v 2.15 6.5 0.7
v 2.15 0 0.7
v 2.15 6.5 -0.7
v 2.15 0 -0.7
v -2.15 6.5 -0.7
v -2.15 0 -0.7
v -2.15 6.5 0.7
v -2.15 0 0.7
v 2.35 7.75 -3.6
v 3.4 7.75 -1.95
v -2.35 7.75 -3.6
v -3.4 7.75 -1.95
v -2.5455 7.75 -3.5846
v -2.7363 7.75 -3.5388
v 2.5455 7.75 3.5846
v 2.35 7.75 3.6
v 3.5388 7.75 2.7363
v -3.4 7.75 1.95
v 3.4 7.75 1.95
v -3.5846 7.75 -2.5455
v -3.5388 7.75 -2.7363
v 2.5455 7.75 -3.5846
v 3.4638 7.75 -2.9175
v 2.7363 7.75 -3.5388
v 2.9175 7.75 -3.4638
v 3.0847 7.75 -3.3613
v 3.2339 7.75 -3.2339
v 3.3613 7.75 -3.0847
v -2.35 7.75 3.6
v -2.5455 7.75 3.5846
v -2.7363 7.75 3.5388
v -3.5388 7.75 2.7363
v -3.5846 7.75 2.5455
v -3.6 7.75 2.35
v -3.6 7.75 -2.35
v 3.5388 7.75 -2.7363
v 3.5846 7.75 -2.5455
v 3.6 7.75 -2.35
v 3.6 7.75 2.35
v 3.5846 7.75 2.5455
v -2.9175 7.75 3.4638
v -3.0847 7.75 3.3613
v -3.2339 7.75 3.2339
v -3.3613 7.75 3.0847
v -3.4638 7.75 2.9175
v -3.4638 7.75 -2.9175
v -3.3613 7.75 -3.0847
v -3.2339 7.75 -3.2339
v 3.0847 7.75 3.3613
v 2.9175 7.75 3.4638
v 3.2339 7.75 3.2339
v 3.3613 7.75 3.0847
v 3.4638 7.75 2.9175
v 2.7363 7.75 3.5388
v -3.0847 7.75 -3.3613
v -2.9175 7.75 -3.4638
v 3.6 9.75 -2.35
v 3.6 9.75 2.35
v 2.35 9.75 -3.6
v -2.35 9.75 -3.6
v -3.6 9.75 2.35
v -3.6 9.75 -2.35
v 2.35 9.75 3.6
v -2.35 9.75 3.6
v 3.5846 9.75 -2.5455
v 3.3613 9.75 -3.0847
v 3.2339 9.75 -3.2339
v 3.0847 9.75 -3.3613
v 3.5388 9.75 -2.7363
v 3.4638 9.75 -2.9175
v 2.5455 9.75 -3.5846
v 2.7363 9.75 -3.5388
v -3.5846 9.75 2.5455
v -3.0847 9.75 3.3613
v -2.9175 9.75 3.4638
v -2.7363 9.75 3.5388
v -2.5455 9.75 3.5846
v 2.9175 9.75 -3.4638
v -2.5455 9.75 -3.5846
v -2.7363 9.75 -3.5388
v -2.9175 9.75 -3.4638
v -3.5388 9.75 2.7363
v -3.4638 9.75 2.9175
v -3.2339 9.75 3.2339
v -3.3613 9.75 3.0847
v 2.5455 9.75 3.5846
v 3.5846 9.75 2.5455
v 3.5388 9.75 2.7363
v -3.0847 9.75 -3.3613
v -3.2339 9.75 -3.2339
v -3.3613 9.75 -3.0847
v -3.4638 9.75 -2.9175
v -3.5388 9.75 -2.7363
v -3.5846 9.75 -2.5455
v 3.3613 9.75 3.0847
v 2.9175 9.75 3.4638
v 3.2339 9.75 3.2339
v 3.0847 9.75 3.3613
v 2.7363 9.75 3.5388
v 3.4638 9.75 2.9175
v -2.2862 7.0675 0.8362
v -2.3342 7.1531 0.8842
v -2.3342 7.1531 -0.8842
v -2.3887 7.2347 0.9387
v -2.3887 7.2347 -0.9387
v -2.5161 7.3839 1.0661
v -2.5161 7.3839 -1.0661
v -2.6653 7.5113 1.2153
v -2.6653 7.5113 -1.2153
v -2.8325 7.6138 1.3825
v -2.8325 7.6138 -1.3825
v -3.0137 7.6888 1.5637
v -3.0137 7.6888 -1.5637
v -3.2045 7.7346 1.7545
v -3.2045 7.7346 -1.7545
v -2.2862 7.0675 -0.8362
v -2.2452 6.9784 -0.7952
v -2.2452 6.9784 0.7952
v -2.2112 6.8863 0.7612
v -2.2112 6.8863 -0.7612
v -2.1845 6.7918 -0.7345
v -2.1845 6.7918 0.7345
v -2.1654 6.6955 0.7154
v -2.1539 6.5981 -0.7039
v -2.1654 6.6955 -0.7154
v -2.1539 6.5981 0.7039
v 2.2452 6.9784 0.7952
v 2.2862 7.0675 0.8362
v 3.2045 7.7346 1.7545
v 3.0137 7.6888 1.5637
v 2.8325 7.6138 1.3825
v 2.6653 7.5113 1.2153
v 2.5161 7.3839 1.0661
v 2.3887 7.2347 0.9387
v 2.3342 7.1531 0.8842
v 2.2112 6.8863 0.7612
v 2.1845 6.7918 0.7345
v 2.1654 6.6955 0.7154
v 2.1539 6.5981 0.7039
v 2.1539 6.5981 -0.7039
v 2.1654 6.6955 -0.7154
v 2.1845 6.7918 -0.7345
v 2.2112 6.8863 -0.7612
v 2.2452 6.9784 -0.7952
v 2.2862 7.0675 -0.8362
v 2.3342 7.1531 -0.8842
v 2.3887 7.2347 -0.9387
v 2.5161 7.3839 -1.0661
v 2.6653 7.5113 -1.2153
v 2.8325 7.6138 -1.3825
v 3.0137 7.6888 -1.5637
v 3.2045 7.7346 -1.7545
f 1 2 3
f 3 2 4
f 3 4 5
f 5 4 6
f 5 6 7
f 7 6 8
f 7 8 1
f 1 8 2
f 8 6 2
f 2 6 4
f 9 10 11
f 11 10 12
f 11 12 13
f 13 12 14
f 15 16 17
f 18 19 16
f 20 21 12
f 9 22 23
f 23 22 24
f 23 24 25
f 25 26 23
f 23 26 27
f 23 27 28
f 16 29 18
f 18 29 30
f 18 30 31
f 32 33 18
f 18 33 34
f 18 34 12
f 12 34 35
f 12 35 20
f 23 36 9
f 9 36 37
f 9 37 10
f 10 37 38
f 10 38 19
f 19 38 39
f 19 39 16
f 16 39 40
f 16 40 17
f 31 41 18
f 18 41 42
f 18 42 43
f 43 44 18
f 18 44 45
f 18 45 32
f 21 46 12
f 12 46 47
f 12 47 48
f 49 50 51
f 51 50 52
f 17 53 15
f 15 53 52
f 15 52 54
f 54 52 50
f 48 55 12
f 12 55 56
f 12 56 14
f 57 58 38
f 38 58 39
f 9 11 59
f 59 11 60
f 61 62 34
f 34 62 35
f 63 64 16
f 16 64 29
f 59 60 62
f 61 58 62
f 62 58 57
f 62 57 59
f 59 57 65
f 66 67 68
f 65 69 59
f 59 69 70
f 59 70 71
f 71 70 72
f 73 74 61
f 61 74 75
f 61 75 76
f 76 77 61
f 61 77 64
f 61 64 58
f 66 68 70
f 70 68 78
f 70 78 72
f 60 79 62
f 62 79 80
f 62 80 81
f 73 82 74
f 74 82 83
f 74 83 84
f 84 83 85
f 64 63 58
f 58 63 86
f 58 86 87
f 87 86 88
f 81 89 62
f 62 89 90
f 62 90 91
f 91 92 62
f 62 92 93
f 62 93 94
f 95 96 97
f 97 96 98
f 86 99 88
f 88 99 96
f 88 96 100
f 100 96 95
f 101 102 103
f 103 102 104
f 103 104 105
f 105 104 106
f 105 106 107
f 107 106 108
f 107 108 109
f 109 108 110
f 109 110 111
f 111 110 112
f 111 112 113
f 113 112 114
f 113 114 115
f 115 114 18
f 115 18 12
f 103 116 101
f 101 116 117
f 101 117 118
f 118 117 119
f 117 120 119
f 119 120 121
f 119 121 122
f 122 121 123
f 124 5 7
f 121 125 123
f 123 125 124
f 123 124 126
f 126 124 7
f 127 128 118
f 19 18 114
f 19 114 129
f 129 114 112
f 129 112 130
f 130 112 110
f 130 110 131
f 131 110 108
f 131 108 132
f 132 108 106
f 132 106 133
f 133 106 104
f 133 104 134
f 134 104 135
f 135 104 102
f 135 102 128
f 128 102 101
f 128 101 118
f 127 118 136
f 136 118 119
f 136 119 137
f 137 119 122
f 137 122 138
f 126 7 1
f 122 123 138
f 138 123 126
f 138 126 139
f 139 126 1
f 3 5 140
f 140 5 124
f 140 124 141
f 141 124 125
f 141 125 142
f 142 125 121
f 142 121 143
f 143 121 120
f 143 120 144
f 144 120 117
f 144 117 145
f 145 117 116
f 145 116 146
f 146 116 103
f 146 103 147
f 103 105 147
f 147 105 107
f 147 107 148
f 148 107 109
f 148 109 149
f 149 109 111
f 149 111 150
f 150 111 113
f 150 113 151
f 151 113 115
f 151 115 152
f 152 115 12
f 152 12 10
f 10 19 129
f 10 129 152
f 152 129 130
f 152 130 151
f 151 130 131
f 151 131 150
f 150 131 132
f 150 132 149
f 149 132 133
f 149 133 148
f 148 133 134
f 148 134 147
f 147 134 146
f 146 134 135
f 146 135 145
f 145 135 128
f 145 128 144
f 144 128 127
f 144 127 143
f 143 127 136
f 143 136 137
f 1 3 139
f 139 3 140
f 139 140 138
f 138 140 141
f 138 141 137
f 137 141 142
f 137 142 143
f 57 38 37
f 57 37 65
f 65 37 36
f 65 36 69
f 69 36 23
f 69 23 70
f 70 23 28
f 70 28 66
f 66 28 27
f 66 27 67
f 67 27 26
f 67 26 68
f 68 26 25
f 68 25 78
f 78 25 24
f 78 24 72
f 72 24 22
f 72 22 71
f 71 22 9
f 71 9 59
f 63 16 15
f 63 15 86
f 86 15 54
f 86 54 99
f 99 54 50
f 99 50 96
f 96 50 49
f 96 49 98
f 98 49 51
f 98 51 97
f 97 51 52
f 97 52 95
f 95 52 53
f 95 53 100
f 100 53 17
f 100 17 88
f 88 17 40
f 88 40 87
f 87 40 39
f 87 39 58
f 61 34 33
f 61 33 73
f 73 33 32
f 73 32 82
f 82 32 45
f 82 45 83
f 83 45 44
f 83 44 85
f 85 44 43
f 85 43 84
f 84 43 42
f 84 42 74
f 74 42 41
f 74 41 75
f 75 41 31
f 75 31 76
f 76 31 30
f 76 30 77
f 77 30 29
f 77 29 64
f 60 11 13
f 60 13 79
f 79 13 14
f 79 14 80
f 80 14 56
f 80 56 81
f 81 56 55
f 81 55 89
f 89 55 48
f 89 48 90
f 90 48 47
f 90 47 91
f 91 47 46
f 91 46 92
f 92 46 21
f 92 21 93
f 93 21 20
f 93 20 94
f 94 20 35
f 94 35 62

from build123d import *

# Parameters (mm, degrees)
SKETCH1_W           = 4.3
SKETCH1_H           = 1.399999994
BOSS_EXTRUDE1_DEPTH = 7.75
SKETCH2_W           = 7.2
SKETCH2_H           = 7.2
BOSS_EXTRUDE2_DEPTH = 2
FILLET1_R           = 1.25


with BuildPart() as part:
    # Sketch1 → Boss-Extrude1 (new body)
    with BuildSketch(Plane(origin=(0, 0, 0), x_dir=(1, 0, 0), z_dir=(0, 1, 0))):
        Rectangle(SKETCH1_W, SKETCH1_H)
    extrude(amount=BOSS_EXTRUDE1_DEPTH)

    # Sketch2 → Boss-Extrude2 (add)
    with BuildSketch(Plane(origin=(0, 7.75, 0), x_dir=(1, 0, 0), z_dir=(0, 1, 0))):
        Rectangle(SKETCH2_W, SKETCH2_H)
    extrude(amount=BOSS_EXTRUDE2_DEPTH)

    # Fillet1
    fillet1_edges = [part.edges().sort_by_distance(p)[0] for p in [
        (2.15, 7.75, 0),
        (0, 7.75, -0.699999997),
        (-2.15, 7.75, 0),
        (0, 7.75, 0.699999997),
        (3.6, 8.75, -3.6),
        (3.6, 8.75, 3.6),
        (-3.6, 8.75, 3.6),
        (-3.6, 8.75, -3.6),
    ]]
    fillet(fillet1_edges, radius=FILLET1_R)


solid = part.part
